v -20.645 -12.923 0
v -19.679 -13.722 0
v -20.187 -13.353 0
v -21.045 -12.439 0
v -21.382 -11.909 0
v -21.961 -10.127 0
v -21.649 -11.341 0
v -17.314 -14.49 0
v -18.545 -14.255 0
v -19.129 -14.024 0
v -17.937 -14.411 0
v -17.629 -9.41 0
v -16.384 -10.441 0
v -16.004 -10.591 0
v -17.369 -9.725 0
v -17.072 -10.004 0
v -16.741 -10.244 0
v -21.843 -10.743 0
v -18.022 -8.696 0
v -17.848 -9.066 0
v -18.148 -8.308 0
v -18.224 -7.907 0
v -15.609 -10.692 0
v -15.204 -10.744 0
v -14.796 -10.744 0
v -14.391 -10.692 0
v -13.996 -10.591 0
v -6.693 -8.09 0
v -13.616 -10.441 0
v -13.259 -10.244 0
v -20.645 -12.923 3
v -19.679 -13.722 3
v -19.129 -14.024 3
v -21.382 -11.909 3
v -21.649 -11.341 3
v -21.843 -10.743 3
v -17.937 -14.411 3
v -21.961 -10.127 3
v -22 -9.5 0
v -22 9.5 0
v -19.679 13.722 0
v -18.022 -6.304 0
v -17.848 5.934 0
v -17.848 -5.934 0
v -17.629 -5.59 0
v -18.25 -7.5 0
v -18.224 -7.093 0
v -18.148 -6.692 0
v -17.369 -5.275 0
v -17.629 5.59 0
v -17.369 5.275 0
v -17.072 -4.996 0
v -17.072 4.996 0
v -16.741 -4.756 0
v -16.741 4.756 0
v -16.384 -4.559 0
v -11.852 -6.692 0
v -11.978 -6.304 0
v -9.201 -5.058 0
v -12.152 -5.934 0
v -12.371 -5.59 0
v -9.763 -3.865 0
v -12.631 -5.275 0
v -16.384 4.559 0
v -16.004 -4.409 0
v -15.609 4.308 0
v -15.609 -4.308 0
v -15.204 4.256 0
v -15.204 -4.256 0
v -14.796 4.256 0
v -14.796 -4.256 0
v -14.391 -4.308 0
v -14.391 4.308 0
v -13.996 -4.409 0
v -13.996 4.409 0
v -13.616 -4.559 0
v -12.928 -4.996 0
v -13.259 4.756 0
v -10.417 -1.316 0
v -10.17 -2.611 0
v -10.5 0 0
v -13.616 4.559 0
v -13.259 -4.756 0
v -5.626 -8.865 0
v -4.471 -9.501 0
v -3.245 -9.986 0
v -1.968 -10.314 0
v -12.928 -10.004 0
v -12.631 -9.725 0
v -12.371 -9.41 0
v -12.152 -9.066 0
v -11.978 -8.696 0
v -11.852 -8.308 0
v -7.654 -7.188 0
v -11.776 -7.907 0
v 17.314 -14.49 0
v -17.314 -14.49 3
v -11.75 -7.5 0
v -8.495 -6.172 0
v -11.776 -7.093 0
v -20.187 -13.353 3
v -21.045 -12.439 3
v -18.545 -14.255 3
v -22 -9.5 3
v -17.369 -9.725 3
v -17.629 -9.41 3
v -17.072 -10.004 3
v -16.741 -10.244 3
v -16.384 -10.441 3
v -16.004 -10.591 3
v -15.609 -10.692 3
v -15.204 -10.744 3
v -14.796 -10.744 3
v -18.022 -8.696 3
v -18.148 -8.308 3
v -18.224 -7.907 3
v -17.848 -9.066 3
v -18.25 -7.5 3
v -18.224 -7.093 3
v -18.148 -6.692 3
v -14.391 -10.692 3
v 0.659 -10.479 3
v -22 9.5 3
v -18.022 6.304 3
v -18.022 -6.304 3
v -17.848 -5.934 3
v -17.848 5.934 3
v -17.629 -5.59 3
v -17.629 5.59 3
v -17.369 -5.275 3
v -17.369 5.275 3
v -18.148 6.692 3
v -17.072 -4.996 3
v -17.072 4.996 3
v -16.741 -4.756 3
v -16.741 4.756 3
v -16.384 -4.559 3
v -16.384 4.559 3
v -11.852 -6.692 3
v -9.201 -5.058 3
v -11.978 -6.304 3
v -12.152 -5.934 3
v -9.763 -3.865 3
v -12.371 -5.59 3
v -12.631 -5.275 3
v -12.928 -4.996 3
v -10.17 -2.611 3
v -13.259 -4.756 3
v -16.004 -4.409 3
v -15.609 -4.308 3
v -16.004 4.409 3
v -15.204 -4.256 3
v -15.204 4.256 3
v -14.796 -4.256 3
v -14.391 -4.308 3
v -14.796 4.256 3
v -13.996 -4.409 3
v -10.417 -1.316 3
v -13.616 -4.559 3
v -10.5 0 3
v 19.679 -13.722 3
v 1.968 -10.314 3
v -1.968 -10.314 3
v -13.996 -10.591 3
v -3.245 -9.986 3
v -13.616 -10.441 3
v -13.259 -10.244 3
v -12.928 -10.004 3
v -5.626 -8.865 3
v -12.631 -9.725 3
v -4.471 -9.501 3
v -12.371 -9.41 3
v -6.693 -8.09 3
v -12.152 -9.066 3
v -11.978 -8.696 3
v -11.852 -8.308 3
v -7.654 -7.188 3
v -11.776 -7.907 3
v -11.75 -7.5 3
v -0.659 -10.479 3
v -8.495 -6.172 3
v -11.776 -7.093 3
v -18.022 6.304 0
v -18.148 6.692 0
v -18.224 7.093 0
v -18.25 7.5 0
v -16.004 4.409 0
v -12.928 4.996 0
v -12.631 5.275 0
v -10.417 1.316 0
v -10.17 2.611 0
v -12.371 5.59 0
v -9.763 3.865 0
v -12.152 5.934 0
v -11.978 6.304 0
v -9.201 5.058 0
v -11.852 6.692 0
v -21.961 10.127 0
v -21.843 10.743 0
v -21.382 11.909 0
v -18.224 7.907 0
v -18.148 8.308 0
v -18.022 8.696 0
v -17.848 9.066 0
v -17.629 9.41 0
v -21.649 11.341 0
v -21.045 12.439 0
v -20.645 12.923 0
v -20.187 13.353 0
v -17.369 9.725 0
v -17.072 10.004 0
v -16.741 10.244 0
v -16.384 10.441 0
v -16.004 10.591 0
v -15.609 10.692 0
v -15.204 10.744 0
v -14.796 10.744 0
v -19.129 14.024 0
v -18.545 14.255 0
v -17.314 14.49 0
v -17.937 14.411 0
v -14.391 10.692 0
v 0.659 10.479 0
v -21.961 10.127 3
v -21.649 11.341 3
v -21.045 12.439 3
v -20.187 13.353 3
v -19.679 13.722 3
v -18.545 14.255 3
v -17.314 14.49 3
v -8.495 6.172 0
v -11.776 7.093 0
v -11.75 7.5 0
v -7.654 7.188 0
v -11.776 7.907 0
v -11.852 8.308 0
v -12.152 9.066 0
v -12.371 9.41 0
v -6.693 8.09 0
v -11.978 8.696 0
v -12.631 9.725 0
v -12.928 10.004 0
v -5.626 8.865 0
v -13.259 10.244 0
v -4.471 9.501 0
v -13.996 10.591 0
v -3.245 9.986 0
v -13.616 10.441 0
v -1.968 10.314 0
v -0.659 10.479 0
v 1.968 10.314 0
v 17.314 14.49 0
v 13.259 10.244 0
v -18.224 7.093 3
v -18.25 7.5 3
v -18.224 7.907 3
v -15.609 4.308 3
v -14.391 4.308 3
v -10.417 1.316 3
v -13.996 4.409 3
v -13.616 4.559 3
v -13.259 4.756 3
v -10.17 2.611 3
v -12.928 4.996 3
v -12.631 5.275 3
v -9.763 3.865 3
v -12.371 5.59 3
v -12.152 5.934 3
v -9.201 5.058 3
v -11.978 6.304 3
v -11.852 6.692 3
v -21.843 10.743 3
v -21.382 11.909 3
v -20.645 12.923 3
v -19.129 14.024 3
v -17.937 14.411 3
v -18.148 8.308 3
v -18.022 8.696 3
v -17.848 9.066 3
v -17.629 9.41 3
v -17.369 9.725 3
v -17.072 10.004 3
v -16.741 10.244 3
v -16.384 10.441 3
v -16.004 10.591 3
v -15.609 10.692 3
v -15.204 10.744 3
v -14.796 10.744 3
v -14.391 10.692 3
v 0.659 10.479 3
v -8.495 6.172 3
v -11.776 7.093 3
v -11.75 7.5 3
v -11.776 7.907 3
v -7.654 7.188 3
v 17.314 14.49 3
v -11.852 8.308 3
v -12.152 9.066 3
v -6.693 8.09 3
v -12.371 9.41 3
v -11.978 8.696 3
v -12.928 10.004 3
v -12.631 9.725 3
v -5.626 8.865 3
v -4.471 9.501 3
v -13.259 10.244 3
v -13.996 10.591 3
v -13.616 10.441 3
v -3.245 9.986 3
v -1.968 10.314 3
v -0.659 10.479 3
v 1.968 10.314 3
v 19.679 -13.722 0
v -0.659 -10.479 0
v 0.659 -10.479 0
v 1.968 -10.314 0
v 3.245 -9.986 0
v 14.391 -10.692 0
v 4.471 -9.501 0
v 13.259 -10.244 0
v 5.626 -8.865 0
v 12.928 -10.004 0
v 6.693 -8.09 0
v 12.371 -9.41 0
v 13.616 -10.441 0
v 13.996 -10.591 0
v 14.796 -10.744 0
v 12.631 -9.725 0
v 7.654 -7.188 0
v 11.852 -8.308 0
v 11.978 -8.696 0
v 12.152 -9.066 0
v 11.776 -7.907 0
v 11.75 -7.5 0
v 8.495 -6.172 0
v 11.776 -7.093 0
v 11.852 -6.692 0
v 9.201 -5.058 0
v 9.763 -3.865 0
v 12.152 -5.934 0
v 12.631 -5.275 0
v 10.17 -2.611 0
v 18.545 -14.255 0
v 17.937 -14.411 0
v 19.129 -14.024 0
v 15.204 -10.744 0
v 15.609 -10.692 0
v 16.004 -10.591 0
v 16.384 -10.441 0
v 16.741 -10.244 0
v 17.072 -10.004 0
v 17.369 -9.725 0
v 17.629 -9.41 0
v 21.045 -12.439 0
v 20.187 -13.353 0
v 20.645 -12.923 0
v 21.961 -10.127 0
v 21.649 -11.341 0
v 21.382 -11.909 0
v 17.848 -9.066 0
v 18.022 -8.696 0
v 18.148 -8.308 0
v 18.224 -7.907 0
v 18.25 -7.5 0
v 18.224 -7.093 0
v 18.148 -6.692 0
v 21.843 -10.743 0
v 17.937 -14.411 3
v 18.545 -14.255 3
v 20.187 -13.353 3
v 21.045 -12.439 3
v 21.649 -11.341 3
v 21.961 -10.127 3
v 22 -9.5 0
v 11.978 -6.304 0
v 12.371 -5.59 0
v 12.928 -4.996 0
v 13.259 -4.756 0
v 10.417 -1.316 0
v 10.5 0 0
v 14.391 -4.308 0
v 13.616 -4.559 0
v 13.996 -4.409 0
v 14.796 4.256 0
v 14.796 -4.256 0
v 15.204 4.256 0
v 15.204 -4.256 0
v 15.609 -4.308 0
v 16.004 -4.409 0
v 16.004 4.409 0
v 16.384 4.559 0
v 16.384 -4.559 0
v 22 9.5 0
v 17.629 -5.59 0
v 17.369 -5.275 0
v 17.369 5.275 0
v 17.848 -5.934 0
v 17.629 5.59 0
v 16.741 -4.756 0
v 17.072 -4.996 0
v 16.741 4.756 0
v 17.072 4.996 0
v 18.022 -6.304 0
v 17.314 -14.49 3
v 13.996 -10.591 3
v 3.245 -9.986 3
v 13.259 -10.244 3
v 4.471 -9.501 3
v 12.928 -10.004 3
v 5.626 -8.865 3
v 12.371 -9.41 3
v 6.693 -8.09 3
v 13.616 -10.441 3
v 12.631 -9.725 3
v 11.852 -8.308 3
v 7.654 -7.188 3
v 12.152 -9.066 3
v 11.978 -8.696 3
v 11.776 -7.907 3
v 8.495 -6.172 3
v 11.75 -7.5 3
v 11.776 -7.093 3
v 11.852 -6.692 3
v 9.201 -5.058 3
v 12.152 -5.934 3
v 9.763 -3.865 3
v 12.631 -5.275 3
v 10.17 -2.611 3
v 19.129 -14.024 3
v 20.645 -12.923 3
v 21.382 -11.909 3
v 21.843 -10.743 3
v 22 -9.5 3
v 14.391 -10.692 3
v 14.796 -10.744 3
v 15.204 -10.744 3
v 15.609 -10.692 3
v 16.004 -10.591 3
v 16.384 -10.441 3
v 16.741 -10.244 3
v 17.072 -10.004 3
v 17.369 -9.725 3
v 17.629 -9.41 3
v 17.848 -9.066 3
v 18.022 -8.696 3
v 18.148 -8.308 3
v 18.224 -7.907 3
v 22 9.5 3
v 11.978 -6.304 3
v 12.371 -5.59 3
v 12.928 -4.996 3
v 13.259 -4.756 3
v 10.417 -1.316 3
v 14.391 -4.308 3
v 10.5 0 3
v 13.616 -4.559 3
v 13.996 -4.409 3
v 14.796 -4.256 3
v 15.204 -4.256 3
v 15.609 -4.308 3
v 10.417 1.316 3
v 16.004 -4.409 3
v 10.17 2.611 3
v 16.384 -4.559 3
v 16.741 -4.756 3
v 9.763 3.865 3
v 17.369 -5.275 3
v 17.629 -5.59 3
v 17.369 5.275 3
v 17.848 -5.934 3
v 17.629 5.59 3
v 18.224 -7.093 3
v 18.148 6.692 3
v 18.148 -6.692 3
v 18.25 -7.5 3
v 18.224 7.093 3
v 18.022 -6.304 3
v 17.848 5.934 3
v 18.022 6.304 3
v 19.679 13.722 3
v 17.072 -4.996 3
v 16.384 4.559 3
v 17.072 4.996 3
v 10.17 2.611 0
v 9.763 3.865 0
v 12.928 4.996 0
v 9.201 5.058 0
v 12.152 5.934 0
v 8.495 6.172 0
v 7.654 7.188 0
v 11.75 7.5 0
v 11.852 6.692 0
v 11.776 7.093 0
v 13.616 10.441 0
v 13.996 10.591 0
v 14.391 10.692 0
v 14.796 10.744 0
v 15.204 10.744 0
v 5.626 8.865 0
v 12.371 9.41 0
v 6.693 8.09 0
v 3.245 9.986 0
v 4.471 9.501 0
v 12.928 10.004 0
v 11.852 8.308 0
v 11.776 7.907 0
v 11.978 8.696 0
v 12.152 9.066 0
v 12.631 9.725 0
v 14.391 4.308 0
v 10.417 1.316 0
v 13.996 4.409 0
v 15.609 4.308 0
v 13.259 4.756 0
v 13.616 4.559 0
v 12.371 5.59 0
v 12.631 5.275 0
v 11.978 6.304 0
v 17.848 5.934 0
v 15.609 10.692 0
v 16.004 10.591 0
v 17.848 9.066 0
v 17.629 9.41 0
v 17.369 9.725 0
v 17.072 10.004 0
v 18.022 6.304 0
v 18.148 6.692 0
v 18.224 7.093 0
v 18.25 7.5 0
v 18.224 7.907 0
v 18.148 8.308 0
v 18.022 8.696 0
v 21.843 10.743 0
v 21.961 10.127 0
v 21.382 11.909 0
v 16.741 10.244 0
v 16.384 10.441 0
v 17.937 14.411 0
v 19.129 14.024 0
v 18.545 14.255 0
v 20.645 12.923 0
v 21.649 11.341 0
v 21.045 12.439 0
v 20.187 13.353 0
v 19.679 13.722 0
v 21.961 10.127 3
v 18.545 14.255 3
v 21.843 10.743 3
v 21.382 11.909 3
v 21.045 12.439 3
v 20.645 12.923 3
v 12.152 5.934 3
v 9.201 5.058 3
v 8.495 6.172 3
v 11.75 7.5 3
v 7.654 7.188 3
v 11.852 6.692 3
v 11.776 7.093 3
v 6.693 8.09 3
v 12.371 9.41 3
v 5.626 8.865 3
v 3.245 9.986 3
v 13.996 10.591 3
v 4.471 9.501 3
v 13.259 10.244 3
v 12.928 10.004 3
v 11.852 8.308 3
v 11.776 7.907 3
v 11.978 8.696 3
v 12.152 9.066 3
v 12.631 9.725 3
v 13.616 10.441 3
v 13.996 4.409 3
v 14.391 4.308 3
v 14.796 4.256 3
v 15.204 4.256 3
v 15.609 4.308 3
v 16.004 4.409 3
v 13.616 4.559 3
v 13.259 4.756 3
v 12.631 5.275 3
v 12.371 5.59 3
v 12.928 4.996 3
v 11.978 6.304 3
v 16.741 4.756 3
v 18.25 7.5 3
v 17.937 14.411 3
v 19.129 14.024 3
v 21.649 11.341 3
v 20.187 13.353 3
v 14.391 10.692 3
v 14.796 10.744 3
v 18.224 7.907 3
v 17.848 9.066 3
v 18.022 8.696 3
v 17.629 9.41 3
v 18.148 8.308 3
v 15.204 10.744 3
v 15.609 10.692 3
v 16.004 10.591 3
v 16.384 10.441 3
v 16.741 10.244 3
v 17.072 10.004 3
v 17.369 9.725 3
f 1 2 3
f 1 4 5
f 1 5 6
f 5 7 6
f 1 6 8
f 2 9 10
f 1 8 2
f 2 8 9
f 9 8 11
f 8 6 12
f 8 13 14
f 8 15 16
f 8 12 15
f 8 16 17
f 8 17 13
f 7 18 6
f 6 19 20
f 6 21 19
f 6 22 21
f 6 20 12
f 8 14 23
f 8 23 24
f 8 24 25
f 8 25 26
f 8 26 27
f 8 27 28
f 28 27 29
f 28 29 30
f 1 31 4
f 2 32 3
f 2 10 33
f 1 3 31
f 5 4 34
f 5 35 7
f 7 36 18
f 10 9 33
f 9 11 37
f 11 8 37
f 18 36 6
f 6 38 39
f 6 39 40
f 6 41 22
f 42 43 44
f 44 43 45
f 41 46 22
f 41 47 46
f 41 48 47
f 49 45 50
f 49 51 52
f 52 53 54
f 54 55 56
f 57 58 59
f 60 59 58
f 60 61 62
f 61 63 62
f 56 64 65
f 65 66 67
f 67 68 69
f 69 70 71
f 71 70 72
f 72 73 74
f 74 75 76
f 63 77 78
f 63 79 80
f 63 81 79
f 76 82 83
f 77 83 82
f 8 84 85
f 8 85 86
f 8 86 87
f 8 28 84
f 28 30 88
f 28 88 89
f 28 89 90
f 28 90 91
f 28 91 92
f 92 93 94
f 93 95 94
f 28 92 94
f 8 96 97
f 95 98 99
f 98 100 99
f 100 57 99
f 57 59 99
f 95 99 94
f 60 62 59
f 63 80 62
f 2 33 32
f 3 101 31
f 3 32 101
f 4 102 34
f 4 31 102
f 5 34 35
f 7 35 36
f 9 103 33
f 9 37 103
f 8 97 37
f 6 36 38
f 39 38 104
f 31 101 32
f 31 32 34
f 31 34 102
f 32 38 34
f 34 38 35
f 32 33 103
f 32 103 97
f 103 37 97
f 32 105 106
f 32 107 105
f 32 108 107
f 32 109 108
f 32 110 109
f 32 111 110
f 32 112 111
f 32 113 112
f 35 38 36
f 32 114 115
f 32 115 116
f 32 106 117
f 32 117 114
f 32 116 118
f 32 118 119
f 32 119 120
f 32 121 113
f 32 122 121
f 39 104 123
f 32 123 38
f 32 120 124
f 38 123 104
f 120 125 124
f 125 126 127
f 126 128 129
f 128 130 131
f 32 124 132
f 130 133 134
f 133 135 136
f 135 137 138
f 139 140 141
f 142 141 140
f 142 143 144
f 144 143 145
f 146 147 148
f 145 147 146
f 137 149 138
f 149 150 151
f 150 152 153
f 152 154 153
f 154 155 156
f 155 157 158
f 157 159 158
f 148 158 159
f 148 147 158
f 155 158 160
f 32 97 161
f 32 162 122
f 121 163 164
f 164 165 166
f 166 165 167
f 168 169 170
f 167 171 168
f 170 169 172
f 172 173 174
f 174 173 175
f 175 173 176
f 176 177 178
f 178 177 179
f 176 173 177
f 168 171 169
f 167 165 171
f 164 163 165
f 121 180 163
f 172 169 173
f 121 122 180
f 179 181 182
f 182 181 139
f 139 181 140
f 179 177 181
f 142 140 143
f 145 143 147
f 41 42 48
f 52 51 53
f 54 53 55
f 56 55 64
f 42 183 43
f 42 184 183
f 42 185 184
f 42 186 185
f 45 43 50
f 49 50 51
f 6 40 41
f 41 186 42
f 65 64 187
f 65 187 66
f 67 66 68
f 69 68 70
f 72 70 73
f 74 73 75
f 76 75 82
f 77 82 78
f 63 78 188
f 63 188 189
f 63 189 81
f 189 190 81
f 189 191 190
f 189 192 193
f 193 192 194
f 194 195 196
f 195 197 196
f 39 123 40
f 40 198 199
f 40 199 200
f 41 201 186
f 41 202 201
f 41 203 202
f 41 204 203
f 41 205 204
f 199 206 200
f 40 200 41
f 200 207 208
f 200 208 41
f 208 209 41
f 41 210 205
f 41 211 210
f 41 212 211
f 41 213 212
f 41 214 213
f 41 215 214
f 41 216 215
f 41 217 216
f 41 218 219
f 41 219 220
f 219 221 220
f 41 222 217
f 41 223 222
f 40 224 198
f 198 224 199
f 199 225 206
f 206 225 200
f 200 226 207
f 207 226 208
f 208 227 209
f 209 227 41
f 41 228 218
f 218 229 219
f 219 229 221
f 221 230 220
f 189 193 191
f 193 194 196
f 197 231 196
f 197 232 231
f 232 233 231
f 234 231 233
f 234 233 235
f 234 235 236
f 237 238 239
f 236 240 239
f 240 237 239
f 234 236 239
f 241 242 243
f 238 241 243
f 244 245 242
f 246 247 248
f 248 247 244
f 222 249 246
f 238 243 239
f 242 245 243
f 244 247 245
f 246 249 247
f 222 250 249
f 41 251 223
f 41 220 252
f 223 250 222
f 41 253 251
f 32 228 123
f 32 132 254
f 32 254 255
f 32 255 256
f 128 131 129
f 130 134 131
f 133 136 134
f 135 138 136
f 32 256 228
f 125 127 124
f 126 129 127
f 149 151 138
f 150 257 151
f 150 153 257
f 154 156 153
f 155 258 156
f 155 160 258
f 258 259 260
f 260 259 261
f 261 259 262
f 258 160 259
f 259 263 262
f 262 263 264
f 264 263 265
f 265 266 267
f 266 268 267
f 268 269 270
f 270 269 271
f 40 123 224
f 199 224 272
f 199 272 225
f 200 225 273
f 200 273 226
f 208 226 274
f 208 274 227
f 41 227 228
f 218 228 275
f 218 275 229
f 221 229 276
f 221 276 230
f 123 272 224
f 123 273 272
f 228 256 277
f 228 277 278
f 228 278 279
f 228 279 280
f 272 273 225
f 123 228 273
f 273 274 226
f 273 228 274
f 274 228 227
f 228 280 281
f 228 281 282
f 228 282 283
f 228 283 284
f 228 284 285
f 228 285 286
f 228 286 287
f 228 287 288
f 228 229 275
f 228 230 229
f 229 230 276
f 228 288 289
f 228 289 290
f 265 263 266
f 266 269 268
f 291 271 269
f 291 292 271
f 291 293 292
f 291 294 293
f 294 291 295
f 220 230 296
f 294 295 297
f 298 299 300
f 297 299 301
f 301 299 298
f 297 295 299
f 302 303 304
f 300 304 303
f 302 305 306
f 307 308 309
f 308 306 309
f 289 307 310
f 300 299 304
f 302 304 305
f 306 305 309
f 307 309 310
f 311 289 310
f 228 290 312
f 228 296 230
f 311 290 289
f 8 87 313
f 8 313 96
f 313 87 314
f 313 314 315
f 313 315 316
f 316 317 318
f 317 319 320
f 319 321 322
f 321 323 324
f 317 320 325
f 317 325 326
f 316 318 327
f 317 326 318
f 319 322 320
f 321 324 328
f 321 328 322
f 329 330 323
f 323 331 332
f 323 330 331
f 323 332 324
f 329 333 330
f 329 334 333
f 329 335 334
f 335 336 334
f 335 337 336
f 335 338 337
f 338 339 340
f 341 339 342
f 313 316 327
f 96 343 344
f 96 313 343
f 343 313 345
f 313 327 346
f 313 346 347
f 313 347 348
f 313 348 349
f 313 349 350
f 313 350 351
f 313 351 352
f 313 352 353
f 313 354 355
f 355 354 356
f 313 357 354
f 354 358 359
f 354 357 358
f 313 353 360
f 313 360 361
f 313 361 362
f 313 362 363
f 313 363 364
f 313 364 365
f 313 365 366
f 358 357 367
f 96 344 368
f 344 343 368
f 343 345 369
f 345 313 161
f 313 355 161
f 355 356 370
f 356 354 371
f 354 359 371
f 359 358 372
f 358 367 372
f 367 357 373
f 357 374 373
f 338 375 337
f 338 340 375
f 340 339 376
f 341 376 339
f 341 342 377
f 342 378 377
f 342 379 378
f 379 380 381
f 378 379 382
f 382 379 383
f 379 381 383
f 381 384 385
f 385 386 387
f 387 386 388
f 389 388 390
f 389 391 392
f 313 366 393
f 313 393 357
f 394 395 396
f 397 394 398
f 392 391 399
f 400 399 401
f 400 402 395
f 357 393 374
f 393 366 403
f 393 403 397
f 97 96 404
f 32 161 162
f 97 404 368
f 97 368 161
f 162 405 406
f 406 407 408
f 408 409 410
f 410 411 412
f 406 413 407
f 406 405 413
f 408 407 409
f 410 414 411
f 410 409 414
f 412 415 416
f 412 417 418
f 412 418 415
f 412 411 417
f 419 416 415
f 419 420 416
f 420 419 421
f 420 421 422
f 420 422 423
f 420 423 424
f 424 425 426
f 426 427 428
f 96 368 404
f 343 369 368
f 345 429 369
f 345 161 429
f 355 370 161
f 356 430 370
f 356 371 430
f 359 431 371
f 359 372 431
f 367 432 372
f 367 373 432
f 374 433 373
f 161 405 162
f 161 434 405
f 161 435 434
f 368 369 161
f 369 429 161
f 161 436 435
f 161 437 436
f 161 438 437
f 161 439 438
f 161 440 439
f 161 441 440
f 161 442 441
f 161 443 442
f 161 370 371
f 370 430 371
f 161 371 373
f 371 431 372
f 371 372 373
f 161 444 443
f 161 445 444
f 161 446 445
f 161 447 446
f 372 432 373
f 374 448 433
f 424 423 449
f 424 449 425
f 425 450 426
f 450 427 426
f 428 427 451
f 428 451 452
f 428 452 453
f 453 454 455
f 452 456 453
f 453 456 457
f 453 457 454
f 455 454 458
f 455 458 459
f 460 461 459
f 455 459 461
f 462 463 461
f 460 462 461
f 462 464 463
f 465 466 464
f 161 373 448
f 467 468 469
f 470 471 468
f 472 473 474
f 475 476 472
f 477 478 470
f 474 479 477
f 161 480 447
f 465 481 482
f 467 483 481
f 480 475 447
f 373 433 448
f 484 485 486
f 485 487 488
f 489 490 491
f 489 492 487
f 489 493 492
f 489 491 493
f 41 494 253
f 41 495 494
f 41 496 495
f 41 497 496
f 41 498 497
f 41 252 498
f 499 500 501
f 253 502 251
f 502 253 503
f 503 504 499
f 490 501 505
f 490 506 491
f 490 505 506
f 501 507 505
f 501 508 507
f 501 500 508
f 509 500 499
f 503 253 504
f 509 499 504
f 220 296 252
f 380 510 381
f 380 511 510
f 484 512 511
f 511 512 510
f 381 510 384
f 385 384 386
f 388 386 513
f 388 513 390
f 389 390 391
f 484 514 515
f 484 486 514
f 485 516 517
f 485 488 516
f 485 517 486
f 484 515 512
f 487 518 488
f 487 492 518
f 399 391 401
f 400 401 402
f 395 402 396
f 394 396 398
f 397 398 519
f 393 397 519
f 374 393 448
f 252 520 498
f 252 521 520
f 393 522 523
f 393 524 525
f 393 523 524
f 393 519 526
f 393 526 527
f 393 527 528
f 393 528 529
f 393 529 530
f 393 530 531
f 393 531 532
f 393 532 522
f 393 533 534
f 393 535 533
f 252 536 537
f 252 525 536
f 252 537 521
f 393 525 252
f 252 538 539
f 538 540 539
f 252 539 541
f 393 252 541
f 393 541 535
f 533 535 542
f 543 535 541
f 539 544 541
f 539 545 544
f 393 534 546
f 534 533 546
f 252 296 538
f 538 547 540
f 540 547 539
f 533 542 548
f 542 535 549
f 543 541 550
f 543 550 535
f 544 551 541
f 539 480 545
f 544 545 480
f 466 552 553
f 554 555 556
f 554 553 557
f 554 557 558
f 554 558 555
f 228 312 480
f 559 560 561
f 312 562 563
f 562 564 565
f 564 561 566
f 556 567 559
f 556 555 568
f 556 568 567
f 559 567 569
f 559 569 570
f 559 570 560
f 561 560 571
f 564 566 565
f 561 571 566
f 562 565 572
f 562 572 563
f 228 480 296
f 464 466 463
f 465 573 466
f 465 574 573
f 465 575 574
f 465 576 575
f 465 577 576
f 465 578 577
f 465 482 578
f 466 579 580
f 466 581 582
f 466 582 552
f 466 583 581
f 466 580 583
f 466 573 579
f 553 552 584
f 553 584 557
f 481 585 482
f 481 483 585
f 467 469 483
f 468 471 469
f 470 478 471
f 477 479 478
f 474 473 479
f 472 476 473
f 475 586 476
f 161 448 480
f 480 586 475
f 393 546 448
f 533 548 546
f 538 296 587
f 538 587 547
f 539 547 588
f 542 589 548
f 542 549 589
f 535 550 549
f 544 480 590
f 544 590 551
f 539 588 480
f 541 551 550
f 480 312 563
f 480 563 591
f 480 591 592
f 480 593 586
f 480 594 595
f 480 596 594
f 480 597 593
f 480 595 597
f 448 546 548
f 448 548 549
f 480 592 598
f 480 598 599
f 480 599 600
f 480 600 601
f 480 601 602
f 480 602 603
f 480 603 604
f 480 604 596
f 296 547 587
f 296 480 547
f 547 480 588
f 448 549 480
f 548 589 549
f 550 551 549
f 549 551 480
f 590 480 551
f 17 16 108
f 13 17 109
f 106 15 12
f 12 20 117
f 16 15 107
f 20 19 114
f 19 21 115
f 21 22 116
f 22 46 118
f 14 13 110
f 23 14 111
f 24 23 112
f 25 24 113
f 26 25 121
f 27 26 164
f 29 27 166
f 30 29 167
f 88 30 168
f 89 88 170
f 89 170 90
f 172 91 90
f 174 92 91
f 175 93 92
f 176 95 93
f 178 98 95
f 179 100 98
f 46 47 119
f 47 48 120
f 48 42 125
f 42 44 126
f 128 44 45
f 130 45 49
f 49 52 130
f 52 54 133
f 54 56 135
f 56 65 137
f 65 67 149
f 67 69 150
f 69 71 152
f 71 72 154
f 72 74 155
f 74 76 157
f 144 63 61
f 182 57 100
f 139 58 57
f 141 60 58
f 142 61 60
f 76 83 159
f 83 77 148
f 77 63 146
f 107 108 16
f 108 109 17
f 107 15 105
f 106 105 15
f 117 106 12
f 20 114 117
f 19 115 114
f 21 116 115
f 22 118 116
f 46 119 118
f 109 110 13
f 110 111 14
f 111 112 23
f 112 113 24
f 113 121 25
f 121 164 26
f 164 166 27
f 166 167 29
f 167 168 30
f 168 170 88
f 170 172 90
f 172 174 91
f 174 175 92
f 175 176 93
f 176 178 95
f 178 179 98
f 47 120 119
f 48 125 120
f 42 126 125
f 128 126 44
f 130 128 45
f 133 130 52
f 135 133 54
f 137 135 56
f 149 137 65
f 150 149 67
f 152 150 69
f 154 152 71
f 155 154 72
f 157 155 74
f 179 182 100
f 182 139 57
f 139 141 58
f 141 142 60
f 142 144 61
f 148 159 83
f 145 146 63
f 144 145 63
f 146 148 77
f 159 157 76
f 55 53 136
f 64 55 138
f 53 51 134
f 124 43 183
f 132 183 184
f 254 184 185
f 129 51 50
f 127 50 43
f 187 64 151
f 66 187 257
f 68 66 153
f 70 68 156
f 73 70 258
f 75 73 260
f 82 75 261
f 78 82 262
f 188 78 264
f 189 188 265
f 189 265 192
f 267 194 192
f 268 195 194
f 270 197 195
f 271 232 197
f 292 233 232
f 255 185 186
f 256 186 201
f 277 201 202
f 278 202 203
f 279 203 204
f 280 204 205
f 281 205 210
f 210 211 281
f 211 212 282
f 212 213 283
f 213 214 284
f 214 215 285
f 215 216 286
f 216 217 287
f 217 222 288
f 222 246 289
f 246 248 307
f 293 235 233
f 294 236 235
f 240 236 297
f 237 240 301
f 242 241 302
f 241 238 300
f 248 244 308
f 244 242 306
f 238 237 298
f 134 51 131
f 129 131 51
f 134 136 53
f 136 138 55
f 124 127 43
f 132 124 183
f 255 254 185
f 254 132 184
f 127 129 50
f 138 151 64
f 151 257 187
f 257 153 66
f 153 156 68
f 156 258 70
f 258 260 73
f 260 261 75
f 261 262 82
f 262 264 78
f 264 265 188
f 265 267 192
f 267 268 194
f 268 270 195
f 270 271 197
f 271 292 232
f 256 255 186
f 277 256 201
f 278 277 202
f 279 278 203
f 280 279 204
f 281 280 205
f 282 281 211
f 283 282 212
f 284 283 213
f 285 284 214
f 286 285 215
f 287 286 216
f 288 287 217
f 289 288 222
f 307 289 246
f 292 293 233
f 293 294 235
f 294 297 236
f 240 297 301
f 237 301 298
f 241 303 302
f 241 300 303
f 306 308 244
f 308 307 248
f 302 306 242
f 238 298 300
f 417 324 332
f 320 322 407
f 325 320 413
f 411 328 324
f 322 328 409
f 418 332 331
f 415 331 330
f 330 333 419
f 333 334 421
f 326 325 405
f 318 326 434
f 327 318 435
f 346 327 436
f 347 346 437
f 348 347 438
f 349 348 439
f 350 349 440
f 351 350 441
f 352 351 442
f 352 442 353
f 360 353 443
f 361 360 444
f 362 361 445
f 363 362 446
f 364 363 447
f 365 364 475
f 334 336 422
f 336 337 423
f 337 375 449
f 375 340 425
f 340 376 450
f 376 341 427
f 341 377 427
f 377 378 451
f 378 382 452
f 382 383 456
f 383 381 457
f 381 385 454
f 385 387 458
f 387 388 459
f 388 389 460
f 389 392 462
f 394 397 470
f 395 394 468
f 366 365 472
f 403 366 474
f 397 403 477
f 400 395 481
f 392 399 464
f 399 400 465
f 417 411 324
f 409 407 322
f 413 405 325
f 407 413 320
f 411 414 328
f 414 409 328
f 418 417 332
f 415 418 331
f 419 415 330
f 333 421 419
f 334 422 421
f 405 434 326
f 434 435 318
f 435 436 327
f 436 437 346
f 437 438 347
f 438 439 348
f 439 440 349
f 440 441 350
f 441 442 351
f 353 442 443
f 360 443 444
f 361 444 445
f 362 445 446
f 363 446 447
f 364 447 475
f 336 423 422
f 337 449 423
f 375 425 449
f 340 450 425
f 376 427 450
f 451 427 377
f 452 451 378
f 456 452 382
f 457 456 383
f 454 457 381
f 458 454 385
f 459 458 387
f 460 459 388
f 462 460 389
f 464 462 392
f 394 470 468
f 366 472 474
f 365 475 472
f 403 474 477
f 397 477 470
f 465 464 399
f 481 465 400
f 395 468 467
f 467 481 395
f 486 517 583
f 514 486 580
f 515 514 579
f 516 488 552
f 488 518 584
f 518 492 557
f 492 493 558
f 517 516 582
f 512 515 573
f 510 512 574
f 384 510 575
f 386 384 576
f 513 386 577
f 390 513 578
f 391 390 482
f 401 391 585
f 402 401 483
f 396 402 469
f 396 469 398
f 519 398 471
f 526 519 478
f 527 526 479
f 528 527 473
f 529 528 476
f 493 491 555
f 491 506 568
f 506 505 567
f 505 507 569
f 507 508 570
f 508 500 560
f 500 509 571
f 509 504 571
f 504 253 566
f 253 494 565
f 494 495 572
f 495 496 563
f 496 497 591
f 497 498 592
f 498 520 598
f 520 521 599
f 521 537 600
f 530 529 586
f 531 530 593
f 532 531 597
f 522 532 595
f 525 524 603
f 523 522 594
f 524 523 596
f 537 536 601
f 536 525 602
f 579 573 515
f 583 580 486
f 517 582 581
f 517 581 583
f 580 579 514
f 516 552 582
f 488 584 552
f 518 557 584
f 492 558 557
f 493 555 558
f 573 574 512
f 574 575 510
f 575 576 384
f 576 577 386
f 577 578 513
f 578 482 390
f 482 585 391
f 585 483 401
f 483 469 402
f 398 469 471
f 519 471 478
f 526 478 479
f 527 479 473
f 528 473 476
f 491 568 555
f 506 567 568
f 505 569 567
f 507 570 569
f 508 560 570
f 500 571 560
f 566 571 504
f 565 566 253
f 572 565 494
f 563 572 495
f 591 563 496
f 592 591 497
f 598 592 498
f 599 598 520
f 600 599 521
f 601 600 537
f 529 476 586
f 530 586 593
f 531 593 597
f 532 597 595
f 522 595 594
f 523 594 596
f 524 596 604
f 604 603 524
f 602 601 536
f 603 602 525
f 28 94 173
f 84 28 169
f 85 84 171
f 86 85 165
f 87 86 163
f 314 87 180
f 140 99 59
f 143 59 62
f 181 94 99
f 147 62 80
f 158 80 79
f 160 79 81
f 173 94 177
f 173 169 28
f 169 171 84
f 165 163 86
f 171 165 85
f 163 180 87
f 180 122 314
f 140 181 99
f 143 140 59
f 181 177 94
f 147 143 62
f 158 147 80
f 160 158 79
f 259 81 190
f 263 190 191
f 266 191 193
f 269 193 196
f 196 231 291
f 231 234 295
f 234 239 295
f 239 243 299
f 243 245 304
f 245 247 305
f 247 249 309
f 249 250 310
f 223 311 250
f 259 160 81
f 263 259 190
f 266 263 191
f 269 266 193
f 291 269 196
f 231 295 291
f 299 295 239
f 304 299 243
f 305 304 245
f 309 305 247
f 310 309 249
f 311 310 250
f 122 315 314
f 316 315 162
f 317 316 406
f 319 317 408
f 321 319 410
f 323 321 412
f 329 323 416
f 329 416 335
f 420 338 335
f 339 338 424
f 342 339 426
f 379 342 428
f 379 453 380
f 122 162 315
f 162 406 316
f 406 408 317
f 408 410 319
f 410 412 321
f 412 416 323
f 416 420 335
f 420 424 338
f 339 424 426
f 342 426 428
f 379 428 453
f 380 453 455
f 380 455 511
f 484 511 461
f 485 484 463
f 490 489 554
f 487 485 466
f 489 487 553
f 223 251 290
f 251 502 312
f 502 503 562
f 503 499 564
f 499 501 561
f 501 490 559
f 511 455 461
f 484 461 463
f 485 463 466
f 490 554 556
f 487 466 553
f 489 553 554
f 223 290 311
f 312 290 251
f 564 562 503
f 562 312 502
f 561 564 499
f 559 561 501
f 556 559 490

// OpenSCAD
$fn = 50;

difference() {
	union() {
		hull() {
			translate(v = [-17.0, 9.5, 0]) {
				cylinder(h = 3, r = 5);
			}
			translate(v = [17.0, 9.5, 0]) {
				cylinder(h = 3, r = 5);
			}
			translate(v = [-17.0, -9.5, 0]) {
				cylinder(h = 3, r = 5);
			}
			translate(v = [17.0, -9.5, 0]) {
				cylinder(h = 3, r = 5);
			}
		}
	}
	union() {
		translate(v = [-15.0, -7.5, 0]) {
			cylinder(h = 3, r = 3.25);
		}
		translate(v = [-15.0, 7.5, 0]) {
			cylinder(h = 3, r = 3.25);
		}
		translate(v = [15.0, -7.5, 0]) {
			cylinder(h = 3, r = 3.25);
		}
		translate(v = [15.0, 7.5, 0]) {
			cylinder(h = 3, r = 3.25);
		}
		cylinder(h = 3, r = 10.5);
	}
}
